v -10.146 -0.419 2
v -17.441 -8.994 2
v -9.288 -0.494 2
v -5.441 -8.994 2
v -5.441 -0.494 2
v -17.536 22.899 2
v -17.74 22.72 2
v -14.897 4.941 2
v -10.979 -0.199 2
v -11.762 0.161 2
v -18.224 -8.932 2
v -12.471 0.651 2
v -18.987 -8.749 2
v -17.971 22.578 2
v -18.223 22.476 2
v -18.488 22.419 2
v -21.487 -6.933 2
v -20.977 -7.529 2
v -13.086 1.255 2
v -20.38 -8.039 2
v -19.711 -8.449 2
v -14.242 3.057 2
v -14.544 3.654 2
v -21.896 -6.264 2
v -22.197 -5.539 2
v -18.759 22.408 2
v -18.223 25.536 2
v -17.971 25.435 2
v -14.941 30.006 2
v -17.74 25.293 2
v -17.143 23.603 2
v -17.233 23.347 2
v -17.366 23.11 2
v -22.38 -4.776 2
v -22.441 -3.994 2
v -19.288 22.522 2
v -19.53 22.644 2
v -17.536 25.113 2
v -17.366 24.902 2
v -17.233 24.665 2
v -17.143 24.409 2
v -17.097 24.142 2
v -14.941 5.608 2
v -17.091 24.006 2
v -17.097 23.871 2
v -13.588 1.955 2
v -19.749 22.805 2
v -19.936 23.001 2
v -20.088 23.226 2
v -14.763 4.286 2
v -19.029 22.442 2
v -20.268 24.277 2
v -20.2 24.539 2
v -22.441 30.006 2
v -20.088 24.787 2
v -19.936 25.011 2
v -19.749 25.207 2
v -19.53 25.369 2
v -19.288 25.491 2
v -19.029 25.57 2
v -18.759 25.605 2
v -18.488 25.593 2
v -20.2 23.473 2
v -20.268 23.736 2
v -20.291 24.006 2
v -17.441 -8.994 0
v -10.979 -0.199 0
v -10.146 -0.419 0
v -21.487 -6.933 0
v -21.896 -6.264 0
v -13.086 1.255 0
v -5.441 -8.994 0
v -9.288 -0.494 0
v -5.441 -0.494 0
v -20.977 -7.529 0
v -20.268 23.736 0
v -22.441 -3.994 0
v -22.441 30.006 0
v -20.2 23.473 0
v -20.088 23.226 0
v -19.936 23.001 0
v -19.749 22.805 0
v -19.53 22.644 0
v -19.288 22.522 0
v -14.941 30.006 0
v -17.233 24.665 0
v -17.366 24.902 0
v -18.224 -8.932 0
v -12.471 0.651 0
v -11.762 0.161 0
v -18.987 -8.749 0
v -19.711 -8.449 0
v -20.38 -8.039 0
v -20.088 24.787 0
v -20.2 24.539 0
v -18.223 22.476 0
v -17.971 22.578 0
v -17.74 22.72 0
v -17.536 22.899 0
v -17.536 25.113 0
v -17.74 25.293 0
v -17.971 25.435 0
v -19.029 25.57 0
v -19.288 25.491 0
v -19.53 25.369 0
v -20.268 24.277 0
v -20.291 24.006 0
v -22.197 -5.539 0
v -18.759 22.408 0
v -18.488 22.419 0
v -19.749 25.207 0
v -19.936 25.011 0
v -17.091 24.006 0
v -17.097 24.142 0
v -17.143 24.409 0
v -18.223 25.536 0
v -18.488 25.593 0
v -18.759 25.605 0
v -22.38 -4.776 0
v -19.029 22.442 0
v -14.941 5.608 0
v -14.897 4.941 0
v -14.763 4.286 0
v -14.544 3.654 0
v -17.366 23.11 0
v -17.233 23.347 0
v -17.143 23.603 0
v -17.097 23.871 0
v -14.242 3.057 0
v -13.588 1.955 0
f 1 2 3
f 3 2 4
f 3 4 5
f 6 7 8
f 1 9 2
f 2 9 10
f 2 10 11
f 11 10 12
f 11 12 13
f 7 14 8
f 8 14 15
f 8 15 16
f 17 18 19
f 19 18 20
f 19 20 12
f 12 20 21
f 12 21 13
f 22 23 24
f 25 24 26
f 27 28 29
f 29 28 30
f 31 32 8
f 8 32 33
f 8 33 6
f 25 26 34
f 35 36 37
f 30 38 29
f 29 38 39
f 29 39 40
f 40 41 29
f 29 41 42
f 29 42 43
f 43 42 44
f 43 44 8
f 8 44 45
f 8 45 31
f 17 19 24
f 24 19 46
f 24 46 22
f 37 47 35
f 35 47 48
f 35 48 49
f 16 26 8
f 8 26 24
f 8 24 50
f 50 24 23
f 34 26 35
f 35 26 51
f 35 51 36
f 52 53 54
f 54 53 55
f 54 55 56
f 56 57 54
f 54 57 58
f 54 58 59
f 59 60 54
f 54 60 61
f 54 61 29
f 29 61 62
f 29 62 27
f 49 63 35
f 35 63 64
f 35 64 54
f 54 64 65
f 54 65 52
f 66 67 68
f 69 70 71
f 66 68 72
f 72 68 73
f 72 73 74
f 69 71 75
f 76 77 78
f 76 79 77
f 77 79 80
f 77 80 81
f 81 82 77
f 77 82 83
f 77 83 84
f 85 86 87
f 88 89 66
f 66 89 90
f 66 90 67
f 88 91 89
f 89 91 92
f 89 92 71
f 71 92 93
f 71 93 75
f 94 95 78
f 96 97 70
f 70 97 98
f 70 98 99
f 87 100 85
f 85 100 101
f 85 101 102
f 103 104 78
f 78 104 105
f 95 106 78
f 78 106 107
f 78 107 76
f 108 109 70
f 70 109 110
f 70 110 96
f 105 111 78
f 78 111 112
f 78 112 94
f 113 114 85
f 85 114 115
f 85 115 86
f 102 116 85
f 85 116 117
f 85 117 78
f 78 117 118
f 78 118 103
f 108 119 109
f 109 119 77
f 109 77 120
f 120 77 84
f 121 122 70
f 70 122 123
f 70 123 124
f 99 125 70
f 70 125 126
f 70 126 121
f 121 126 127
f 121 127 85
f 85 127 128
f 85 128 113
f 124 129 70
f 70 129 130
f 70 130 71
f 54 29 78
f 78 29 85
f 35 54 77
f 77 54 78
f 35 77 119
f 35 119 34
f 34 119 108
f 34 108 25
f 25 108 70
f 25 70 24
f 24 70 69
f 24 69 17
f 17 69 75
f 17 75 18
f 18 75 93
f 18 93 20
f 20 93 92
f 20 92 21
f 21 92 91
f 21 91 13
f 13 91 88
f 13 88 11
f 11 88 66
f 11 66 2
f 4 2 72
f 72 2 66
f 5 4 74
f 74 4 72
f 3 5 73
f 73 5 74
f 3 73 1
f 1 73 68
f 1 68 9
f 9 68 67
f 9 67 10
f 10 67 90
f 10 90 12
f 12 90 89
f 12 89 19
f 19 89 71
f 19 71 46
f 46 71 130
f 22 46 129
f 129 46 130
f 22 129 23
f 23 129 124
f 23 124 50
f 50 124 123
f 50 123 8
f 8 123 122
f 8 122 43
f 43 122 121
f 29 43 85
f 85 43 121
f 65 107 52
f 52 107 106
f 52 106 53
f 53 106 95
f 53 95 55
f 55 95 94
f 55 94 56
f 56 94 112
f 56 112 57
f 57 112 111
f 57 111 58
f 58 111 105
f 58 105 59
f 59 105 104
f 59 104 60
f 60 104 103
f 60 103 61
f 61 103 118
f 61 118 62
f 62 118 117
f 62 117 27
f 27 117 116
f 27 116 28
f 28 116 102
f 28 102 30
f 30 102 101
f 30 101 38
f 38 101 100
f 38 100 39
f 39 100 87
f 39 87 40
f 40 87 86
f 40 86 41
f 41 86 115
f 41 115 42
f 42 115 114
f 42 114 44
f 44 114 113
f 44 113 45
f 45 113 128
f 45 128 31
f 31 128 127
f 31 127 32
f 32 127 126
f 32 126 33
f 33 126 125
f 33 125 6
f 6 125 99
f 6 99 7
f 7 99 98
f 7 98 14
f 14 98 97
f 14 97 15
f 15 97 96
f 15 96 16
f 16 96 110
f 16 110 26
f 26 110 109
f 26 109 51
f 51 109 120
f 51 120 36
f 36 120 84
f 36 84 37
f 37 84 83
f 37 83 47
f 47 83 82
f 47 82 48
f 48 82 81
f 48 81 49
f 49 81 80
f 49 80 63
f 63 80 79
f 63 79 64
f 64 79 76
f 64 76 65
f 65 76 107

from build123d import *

# Parameters (mm, degrees)
SKETCH_1_R      = 1.6
EXTRUDE_2_DEPTH = 2


with BuildPart() as part:
    # 草图1 → 凸台-拉伸2 (new body)
    with BuildSketch(Plane.XY):
        with BuildLine():
            Line((-13.587712402, 1.954995905), (-14.241535279, 3.056996382))
            ThreePointArc((-14.241535279, 3.056996382), (-14.763277187, 4.285507454), (-14.941422594, 5.608276628))
            Line((-14.941422594, 5.608276628), (-14.941422594, 30.006276151))
            Line((-14.941422594, 30.006276151), (-22.441422594, 30.006276151))
            Line((-22.441422594, 30.006276151), (-22.441422594, -3.993723849))
            ThreePointArc((-22.441422594, -3.993723849), (-20.9769565, -7.529257755), (-17.441422594, -8.993723849))
            Line((-17.441422594, -8.993723849), (-5.441422594, -8.993723849))
            Line((-5.441422594, -8.993723849), (-5.441422594, -0.493723849))
            Line((-5.441422594, -0.493723849), (-9.287599717, -0.493723849))
            ThreePointArc((-9.287599717, -0.493723849), (-11.761826745, 0.161371018), (-13.587712402, 1.954995905))
        make_face()
        with Locations((-18.691422594, 24.006276151)):
            Circle(SKETCH_1_R, mode=Mode.SUBTRACT)
    extrude(amount=EXTRUDE_2_DEPTH)


solid = part.part
